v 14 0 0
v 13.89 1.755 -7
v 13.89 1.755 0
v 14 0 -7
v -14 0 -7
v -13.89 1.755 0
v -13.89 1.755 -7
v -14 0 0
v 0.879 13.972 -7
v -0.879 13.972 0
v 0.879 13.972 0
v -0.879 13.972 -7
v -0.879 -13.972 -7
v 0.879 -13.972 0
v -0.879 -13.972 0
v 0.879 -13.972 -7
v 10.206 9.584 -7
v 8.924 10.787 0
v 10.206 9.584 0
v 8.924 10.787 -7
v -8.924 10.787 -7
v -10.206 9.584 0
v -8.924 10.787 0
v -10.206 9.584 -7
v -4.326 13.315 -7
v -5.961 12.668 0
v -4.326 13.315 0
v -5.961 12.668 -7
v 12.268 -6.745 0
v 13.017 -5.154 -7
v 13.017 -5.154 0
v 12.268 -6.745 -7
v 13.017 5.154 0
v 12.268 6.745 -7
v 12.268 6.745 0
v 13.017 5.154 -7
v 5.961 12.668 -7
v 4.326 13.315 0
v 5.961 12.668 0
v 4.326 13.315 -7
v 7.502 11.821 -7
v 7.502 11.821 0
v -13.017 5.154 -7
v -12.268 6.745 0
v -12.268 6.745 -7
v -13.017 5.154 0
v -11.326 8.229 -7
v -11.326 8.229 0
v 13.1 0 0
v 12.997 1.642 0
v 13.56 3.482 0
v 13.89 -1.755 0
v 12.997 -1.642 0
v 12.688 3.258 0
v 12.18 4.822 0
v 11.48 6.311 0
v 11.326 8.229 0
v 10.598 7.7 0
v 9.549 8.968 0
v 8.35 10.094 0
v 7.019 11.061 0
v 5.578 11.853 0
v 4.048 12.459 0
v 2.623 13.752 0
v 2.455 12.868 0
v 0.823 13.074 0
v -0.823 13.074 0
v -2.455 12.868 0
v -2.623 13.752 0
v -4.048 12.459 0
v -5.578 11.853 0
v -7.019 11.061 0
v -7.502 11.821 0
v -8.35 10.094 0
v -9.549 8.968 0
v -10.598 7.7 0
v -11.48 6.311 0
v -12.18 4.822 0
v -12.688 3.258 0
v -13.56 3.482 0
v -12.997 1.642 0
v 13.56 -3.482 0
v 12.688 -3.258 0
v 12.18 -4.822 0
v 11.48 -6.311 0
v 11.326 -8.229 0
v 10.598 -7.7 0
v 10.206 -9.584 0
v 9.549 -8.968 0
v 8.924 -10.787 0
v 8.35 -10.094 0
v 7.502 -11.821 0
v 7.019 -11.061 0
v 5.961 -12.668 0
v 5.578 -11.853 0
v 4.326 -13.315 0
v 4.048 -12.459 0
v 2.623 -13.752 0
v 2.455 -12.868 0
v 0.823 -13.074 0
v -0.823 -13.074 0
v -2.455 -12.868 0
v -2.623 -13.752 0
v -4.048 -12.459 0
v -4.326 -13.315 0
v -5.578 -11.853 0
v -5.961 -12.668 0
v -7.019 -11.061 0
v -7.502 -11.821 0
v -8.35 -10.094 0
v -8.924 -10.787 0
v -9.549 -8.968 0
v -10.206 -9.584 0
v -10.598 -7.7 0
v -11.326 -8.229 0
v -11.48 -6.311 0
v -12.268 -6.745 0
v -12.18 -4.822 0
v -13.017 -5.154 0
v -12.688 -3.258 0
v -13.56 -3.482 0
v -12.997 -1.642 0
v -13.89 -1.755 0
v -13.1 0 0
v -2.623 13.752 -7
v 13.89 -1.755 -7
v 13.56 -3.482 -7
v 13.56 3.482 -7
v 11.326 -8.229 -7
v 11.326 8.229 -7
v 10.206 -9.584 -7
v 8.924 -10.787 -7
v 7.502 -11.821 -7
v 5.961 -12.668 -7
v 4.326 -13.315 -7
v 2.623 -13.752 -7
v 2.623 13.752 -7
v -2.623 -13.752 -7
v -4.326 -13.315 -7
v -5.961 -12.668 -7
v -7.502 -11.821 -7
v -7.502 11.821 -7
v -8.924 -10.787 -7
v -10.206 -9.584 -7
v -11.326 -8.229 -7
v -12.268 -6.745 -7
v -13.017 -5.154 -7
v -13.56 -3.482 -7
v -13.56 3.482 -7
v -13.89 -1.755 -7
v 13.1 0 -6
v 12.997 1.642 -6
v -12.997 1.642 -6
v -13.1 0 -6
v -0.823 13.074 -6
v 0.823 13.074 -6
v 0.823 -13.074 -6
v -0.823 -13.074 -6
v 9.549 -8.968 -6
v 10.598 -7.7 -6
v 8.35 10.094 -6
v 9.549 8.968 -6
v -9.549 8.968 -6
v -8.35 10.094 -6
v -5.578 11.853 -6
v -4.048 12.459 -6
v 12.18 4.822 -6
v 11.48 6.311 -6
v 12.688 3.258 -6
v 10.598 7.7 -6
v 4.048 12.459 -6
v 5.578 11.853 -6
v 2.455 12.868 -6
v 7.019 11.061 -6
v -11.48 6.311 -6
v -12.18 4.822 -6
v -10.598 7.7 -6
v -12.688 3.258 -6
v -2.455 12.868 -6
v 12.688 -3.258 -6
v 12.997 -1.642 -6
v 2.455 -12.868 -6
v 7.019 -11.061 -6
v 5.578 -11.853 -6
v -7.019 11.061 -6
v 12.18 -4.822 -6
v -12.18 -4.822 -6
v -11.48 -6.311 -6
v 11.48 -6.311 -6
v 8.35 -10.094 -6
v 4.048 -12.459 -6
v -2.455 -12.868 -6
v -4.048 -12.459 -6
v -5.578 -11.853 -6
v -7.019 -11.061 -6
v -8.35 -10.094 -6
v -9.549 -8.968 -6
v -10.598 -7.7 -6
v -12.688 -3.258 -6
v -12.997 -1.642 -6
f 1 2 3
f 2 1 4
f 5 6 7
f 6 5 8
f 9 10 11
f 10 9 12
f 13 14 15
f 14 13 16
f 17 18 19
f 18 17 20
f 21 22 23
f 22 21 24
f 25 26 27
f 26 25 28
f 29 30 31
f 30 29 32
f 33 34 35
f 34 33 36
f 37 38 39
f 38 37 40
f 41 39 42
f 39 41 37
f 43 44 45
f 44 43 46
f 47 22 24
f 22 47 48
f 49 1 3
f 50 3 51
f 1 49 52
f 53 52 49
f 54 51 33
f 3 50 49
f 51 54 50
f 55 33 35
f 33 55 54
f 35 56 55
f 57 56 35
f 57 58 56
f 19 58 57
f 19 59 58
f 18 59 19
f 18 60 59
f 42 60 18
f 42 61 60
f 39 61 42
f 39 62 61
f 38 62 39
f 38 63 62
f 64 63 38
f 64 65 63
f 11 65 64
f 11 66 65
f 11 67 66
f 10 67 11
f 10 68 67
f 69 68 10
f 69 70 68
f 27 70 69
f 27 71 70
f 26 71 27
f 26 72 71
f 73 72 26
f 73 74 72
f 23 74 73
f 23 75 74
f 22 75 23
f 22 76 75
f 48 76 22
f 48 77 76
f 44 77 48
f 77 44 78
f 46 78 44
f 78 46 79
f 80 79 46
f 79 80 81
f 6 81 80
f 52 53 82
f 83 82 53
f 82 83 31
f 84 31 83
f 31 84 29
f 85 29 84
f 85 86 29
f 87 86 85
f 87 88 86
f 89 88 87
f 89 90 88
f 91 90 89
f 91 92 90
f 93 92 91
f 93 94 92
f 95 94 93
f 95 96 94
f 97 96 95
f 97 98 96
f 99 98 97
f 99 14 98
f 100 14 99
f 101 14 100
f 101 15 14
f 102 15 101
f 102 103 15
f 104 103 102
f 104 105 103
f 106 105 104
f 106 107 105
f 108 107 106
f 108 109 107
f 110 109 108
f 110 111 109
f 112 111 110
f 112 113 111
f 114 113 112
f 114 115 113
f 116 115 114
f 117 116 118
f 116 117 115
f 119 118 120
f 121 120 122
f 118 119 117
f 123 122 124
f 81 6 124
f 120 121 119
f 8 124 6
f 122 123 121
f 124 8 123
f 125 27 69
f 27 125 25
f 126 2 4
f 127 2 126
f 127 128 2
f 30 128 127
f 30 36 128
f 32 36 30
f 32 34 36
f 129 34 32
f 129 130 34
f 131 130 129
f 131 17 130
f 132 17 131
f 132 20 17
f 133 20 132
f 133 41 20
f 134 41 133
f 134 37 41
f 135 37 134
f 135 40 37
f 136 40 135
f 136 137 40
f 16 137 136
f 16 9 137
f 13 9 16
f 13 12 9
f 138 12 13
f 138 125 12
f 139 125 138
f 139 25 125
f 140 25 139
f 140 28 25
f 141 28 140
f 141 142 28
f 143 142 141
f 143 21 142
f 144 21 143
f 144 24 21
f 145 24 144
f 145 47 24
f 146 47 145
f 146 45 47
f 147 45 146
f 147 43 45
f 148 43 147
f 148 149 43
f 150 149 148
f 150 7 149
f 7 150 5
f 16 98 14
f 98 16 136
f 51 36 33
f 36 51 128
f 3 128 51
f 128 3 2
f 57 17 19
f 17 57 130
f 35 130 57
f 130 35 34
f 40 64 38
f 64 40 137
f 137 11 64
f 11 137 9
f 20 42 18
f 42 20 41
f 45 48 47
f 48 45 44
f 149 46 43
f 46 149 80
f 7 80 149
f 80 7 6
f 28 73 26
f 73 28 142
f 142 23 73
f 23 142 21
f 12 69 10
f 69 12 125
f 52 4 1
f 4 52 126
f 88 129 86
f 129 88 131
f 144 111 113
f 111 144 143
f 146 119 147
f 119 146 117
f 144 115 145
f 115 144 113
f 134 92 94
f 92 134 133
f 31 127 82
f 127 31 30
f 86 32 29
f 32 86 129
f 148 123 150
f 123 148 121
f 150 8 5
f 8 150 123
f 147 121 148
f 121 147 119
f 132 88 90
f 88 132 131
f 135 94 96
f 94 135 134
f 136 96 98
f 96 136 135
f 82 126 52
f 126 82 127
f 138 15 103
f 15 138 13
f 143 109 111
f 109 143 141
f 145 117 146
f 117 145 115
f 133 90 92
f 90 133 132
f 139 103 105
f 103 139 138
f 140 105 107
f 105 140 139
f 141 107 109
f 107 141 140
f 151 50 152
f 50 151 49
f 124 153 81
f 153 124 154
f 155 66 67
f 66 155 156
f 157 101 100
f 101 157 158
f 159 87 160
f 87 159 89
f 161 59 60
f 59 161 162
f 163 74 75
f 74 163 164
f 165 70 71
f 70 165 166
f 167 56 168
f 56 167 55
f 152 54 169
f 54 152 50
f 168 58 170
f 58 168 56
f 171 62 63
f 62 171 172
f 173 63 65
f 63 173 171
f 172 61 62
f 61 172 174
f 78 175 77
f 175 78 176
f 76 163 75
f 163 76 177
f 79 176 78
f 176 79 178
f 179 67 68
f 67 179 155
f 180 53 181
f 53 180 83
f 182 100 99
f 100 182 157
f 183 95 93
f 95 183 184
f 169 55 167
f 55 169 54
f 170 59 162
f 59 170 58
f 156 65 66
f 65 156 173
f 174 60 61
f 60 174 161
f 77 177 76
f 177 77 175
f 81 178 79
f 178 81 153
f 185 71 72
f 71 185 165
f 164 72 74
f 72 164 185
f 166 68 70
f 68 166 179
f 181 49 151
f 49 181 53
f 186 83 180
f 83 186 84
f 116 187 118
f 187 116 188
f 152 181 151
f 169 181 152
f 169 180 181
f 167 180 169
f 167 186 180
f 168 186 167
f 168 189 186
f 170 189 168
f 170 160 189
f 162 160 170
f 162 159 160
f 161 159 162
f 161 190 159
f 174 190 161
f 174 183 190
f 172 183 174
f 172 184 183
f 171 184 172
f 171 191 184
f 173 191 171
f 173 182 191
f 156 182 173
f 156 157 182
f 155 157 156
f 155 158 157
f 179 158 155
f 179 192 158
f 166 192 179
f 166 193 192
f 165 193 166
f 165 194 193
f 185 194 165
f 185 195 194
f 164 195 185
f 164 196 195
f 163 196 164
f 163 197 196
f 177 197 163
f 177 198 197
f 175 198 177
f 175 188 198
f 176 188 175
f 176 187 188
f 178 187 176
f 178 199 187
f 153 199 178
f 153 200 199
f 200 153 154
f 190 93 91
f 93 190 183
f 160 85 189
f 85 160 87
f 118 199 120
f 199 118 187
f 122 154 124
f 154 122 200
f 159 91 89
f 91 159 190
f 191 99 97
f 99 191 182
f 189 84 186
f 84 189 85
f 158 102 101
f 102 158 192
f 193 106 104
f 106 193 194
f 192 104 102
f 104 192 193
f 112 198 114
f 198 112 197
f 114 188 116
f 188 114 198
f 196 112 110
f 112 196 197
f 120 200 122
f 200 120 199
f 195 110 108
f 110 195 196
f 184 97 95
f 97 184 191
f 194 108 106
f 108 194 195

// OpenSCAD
$fn = 50;


difference() {
	union() {
		translate(v = [0, 0, -7.0000000000]) {
			cylinder(h = 7, r = 14.0000000000);
		}
	}
	union() {
		#translate(v = [0, 0, -6.0000000000]) {
			cylinder(h = 6, r = 13.1000000000);
		}
	}
}
